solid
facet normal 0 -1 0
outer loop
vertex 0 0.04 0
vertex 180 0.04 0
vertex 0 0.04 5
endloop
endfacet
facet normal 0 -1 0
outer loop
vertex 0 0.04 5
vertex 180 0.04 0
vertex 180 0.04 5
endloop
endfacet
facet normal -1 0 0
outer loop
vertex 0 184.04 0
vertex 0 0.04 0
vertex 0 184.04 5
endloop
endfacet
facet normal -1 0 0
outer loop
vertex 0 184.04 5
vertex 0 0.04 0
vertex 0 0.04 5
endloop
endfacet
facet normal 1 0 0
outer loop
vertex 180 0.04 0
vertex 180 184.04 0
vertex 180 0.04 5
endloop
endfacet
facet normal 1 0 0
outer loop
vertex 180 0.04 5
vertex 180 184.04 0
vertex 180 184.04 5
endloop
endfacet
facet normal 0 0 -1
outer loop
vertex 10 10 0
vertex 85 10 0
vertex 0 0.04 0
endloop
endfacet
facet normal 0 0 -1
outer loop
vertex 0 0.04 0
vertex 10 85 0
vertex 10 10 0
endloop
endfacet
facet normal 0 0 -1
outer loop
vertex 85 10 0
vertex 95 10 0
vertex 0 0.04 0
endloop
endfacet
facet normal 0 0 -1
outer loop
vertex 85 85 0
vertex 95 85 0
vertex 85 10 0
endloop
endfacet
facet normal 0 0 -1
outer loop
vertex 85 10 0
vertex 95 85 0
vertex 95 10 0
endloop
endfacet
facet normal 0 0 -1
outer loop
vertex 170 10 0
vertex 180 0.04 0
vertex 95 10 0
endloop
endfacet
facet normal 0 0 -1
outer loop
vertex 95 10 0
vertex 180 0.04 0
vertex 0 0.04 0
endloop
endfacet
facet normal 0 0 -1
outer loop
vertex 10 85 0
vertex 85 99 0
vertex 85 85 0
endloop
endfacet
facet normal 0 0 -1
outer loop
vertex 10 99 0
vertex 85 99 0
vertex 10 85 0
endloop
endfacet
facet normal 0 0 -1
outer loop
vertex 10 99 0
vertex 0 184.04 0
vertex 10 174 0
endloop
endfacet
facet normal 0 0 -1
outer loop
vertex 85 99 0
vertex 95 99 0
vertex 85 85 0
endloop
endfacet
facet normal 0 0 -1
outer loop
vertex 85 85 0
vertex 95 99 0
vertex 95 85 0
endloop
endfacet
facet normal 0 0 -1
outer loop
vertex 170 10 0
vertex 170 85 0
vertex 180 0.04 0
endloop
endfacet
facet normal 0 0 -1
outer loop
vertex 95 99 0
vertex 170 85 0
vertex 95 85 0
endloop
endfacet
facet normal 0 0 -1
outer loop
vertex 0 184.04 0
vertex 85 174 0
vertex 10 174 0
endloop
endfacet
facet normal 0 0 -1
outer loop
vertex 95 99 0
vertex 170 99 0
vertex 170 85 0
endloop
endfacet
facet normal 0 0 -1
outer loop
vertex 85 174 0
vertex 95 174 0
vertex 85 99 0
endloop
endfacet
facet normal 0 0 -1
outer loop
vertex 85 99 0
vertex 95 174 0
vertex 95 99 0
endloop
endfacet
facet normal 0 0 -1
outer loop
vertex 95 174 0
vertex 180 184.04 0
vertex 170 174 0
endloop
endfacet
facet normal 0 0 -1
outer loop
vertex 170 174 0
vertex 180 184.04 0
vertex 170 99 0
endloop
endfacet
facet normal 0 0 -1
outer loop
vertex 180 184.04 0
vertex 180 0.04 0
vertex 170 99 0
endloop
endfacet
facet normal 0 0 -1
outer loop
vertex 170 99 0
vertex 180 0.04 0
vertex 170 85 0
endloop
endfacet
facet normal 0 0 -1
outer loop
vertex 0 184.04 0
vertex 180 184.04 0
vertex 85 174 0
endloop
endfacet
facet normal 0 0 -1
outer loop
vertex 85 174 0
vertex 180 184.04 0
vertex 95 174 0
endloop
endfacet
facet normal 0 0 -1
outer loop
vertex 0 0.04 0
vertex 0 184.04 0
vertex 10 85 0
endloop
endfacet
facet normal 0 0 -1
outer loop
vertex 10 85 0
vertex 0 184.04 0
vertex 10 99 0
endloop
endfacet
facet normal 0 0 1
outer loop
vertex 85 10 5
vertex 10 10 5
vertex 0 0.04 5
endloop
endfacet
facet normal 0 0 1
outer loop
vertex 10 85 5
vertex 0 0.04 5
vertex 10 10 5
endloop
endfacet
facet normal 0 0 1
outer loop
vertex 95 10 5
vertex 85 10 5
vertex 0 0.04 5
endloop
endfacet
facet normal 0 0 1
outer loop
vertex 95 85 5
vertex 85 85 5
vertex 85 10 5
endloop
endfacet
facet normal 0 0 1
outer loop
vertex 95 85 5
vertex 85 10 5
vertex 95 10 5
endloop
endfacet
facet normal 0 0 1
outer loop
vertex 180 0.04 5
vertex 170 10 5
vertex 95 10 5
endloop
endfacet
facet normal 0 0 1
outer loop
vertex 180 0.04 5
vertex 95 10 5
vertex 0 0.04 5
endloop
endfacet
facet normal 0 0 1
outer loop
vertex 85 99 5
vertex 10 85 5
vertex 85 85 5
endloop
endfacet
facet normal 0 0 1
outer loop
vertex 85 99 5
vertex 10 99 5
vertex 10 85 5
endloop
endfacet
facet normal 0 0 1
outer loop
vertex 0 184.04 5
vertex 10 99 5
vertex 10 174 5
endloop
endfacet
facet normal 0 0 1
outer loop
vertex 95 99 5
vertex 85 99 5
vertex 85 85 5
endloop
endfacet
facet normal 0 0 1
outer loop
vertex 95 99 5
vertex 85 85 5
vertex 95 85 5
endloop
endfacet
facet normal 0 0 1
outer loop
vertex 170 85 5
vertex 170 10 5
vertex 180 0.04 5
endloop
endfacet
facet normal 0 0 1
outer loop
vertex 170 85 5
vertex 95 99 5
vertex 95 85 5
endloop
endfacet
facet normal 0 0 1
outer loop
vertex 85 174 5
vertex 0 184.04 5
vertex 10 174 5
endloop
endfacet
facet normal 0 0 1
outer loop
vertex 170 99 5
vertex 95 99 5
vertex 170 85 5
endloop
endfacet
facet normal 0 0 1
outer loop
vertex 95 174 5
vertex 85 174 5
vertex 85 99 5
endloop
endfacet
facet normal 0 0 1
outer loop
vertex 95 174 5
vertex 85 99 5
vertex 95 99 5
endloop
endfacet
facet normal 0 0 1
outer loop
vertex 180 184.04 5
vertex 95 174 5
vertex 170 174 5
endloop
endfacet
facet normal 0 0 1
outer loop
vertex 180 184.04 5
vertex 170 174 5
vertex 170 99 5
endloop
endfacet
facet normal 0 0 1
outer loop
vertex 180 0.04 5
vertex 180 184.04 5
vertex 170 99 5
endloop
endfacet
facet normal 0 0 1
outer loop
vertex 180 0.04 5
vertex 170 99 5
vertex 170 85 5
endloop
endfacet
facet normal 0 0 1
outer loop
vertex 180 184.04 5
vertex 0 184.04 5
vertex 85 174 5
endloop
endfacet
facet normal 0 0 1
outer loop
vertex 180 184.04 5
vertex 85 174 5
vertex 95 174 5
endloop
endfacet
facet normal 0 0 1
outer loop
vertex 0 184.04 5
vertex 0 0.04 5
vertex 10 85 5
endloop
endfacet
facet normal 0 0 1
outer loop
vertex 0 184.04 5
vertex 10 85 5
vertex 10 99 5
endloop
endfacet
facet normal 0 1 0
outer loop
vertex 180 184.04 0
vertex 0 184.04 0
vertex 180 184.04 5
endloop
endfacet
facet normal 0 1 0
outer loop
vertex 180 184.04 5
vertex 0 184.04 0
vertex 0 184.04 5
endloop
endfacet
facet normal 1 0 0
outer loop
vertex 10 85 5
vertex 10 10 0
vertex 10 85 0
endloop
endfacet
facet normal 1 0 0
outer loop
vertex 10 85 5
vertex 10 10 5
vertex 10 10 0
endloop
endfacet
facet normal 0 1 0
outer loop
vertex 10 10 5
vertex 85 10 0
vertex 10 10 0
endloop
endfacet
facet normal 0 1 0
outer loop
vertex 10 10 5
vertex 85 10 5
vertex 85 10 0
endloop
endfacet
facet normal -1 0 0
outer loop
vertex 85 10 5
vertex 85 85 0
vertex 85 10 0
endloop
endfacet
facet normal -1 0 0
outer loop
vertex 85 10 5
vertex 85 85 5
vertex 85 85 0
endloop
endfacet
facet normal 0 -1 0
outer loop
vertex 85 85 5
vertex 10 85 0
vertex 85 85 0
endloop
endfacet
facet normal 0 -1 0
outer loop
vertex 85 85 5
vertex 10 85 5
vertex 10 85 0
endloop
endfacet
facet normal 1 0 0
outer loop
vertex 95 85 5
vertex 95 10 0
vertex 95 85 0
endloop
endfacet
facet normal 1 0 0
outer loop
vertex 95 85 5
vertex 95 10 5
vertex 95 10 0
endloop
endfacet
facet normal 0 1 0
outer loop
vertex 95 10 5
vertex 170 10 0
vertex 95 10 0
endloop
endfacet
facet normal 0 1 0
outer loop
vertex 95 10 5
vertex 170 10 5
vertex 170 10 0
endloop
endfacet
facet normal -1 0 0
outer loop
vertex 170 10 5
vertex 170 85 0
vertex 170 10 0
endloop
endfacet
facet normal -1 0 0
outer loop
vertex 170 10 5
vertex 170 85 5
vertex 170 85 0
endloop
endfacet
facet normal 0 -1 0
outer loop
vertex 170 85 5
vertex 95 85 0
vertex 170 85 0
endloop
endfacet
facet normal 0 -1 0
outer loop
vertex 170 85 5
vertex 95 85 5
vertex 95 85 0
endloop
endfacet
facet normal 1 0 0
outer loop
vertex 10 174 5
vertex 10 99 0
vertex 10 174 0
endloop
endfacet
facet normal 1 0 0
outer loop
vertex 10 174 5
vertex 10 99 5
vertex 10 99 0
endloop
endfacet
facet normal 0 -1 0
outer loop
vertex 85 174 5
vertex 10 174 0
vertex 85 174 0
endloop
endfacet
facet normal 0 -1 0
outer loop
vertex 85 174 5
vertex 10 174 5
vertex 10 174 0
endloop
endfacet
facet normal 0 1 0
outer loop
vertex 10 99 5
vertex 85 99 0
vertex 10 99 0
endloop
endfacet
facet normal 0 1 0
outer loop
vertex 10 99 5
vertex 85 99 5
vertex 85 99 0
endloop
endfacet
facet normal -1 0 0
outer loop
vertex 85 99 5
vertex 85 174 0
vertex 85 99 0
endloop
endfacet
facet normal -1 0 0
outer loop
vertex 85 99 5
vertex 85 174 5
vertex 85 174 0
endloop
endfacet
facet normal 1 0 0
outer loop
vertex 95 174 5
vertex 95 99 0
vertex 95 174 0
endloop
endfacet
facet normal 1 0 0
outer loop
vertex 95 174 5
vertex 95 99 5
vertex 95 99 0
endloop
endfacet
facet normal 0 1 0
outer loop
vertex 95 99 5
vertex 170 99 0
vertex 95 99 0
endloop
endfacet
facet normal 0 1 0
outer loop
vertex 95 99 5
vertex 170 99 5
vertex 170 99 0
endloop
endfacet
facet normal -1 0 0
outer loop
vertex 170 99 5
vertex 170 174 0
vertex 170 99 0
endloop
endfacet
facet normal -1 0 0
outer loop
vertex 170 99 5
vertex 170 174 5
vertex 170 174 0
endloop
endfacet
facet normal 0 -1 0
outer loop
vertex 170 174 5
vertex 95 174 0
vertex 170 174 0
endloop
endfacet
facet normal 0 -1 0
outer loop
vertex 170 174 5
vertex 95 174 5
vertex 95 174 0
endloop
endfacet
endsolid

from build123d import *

# Parameters (mm, degrees)
SKETCH_W                     = 180
SKETCH_H                     = 184
PAD_DEPTH                    = 5
SKETCH001_W                  = 75
SKETCH001_H                  = 75
POCKET_DEPTH                 = 5
SKETCH001_LINEARPATTERN_2_W  = 75
SKETCH001_LINEARPATTERN_2_H  = 75
POCKET_LINEARPATTERN_2_DEPTH = 5
LINEARPATTERN001_COUNT       = 2
LINEARPATTERN001_PITCH       = 89


with BuildPart() as part:
    # Sketch → Pad (new body)
    with BuildSketch(Plane.XY):
        with Locations((90, 92.039833)):
            Rectangle(SKETCH_W, SKETCH_H)
    extrude(amount=PAD_DEPTH)

    # Sketch001 (on Face6 of Pad) → Pocket (cut)
    with BuildSketch(Plane.XY.offset(5)):
        with Locations((47.5, 136.5)):
            Rectangle(SKETCH001_W, SKETCH001_H)
    pocket = extrude(amount=-POCKET_DEPTH, mode=Mode.SUBTRACT)

    # Sketch001 LinearPattern 2 → Pocket LinearPattern 2 (cut)
    with BuildSketch(Plane(origin=(85, 0, 5), x_dir=(1, 0, 0), z_dir=(0, 0, 1))):
        with Locations((47.5, 136.5)):
            Rectangle(SKETCH001_LINEARPATTERN_2_W, SKETCH001_LINEARPATTERN_2_H)
    pocket_linearpattern_2 = extrude(amount=-POCKET_LINEARPATTERN_2_DEPTH, mode=Mode.SUBTRACT)

    # LinearPattern001: Pocket, Pocket LinearPattern 2 ×2
    with Locations(*[(0, -i * LINEARPATTERN001_PITCH, 0) for i in range(1, LINEARPATTERN001_COUNT)]):
        add(pocket, mode=Mode.SUBTRACT)
        add(pocket_linearpattern_2, mode=Mode.SUBTRACT)


solid = part.part
